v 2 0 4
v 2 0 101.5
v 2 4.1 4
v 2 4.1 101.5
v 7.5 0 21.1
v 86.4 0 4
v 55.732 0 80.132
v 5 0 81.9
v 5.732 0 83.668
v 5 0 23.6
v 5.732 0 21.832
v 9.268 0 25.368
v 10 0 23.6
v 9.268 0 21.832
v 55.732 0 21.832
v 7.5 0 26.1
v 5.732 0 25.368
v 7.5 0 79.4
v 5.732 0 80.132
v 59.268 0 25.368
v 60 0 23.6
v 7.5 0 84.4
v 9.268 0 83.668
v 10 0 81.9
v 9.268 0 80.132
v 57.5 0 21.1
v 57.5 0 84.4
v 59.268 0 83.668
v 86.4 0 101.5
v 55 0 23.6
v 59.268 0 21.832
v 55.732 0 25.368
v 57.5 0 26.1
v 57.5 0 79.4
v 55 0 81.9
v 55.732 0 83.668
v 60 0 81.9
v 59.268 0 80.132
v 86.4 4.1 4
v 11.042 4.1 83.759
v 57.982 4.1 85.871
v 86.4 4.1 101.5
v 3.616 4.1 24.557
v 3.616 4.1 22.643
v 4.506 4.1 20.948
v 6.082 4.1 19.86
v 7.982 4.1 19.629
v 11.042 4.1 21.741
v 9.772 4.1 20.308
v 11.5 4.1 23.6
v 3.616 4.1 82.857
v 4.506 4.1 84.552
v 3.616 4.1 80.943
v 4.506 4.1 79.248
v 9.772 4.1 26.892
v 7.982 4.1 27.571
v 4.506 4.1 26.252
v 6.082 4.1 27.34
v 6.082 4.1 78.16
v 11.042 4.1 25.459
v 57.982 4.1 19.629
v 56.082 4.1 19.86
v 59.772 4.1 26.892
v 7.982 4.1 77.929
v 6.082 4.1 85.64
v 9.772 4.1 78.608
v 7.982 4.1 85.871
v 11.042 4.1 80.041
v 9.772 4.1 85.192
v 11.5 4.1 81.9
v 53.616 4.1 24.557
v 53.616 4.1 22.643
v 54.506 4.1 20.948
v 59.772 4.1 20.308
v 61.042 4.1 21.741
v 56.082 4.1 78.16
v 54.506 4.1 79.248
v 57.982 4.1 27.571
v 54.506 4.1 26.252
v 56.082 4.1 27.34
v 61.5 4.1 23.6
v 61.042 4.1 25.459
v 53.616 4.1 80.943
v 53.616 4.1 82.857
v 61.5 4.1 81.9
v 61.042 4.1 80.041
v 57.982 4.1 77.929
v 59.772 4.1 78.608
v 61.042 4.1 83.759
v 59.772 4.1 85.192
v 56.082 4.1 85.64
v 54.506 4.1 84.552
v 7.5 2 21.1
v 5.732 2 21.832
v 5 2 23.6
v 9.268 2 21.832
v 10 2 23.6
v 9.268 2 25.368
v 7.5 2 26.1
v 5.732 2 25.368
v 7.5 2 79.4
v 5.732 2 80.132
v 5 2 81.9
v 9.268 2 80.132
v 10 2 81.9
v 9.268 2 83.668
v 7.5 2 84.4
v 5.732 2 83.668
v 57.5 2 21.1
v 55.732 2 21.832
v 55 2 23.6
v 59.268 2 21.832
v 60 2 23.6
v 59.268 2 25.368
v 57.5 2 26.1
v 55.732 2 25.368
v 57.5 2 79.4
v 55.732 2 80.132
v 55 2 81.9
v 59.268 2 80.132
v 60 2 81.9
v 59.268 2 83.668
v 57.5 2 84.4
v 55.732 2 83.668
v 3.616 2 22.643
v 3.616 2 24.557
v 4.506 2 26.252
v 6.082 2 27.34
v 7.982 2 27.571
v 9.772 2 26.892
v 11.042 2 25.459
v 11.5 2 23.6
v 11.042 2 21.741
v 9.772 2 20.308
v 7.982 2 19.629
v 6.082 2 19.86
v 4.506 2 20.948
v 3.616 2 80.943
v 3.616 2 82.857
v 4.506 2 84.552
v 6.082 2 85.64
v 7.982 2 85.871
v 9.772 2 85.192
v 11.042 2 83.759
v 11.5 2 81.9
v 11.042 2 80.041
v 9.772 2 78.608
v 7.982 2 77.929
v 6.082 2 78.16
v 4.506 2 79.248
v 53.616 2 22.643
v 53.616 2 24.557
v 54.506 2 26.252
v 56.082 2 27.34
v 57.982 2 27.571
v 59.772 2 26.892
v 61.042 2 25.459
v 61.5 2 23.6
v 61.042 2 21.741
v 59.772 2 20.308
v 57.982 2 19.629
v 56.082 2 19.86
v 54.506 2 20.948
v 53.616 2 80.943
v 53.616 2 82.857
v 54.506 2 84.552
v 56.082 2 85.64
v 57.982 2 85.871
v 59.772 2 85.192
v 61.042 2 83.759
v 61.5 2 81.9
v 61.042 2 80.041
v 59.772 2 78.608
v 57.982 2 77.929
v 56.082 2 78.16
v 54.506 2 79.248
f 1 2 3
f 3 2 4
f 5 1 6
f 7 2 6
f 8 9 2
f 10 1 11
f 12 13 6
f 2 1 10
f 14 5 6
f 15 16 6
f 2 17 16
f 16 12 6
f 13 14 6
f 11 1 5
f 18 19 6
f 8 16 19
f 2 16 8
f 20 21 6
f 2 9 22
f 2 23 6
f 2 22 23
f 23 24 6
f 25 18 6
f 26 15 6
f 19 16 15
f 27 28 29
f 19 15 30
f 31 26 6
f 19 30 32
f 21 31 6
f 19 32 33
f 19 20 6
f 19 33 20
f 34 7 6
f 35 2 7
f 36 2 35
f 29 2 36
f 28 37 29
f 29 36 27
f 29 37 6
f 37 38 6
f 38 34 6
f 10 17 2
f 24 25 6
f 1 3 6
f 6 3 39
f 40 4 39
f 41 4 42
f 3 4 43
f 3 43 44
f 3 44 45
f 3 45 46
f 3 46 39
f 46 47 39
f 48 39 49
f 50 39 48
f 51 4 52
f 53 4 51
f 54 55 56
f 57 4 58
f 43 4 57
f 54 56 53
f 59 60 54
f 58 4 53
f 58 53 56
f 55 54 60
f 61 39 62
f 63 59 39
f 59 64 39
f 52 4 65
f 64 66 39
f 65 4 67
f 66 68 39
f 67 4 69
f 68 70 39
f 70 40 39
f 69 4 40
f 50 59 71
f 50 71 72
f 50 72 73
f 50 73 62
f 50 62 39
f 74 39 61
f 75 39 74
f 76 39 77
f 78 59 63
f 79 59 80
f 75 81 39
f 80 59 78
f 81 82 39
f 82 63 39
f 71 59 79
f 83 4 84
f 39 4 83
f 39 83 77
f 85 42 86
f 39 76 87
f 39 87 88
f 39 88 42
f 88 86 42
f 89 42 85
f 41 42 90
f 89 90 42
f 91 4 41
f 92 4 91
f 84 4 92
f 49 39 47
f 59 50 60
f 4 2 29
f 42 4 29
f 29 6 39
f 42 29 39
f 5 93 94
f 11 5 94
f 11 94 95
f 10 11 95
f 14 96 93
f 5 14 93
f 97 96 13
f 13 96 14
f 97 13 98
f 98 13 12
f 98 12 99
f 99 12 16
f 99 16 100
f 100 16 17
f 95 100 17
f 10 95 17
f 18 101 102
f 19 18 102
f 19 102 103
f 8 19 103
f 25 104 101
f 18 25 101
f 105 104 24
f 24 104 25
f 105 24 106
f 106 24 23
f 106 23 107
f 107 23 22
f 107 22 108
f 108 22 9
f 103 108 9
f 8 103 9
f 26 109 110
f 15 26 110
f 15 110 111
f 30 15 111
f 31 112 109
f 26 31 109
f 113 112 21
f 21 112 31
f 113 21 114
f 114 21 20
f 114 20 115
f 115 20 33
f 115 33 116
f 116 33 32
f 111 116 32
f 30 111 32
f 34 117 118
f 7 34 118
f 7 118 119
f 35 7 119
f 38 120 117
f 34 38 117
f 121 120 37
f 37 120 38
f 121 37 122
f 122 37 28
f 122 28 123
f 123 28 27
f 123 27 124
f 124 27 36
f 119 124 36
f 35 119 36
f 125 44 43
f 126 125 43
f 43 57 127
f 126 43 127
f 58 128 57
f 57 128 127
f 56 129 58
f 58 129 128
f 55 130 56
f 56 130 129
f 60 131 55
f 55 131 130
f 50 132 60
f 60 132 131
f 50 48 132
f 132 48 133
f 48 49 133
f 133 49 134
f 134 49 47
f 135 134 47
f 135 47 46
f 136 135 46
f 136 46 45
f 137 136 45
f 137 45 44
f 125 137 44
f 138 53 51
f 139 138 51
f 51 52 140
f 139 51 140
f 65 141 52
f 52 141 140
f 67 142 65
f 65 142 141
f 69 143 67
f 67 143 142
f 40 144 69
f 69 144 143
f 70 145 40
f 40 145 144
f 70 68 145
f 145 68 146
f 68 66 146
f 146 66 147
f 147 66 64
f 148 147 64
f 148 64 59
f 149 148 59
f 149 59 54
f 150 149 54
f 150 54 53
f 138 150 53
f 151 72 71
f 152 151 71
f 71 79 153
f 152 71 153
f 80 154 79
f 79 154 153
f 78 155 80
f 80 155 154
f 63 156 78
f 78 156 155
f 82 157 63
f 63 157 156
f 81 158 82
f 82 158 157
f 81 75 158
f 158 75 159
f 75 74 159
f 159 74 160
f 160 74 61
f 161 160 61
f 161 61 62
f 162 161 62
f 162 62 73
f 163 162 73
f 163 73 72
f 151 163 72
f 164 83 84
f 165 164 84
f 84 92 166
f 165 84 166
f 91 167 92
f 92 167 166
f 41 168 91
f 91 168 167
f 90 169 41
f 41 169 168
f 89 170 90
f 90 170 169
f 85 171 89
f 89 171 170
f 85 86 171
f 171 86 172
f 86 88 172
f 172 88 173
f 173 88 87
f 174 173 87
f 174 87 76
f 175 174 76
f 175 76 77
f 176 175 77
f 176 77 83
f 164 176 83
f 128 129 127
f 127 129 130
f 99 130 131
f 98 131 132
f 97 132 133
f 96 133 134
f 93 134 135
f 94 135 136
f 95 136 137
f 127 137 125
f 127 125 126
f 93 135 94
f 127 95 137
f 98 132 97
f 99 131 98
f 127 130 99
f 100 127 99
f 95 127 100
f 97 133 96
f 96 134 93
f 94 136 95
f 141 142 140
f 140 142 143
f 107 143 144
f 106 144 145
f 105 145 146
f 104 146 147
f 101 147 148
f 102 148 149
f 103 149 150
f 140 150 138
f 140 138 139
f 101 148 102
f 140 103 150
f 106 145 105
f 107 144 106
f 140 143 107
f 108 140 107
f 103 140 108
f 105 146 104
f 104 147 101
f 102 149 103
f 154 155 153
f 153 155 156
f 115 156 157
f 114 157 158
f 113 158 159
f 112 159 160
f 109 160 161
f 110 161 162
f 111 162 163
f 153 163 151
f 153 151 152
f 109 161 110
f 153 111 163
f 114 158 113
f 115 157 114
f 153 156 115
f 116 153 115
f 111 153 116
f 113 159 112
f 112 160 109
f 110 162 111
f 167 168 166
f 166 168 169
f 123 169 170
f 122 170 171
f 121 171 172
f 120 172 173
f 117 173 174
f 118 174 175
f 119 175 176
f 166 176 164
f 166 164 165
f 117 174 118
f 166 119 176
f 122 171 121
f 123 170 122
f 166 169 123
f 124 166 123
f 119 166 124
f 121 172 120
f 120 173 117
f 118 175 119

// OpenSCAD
batX = 22.4;//Ancho frente
batY = 21.4;//Alto frente
batZ = 90.5;//Profundo


pared = 4;
pared2 = 2*pared;
medPared = pared/2;

raspX = 58;
raspY = 18;
raspZ = 84.5;

h = batY+pared2;

mainAreaX = raspX+batX+pared2; 
mainAreaY = batY+pared2;
mainAreaZ = batZ+pared+5+4;

mainAreaIntX = mainAreaX-pared2;
mainAreaIntY = mainAreaY-pared;
mainAreaIntZ = mainAreaZ-pared;

x1 = pared+3.5;
z1 = 23.6;
x2 = x1+50;
x3 = pared+3.5;
z3 = 81.9;

cejaHorPosX = mainAreaX-batX-pared;
cejaVertPosX = mainAreaX-pared-2;
torH = batY+pared;






difference()
{
	translate([medPared,0,pared])
	doTop();	

	translate([0,-1,0])
	baseBatTorn(2.5);

	translate([0,2,0])
	baseBatTorn(4);

}

module doTop()
{
	cube([
			mainAreaX-pared,
			pared+0.1,
			mainAreaZ-pared2+medPared
	  	]);
}




module baseBatTorn(r)
{
//Tornillos
translate([x1,0,z1])
tornCyl(r);
translate([x2,0,z1])
tornCyl(r);
translate([x1,0,z3])
tornCyl(r);
translate([x2,0,z3])
tornCyl(r);
}











module tornCyl(rad)
{
	rotate([-90,0,0])
	{
		cylinder(r=rad,torH);
	}
}
